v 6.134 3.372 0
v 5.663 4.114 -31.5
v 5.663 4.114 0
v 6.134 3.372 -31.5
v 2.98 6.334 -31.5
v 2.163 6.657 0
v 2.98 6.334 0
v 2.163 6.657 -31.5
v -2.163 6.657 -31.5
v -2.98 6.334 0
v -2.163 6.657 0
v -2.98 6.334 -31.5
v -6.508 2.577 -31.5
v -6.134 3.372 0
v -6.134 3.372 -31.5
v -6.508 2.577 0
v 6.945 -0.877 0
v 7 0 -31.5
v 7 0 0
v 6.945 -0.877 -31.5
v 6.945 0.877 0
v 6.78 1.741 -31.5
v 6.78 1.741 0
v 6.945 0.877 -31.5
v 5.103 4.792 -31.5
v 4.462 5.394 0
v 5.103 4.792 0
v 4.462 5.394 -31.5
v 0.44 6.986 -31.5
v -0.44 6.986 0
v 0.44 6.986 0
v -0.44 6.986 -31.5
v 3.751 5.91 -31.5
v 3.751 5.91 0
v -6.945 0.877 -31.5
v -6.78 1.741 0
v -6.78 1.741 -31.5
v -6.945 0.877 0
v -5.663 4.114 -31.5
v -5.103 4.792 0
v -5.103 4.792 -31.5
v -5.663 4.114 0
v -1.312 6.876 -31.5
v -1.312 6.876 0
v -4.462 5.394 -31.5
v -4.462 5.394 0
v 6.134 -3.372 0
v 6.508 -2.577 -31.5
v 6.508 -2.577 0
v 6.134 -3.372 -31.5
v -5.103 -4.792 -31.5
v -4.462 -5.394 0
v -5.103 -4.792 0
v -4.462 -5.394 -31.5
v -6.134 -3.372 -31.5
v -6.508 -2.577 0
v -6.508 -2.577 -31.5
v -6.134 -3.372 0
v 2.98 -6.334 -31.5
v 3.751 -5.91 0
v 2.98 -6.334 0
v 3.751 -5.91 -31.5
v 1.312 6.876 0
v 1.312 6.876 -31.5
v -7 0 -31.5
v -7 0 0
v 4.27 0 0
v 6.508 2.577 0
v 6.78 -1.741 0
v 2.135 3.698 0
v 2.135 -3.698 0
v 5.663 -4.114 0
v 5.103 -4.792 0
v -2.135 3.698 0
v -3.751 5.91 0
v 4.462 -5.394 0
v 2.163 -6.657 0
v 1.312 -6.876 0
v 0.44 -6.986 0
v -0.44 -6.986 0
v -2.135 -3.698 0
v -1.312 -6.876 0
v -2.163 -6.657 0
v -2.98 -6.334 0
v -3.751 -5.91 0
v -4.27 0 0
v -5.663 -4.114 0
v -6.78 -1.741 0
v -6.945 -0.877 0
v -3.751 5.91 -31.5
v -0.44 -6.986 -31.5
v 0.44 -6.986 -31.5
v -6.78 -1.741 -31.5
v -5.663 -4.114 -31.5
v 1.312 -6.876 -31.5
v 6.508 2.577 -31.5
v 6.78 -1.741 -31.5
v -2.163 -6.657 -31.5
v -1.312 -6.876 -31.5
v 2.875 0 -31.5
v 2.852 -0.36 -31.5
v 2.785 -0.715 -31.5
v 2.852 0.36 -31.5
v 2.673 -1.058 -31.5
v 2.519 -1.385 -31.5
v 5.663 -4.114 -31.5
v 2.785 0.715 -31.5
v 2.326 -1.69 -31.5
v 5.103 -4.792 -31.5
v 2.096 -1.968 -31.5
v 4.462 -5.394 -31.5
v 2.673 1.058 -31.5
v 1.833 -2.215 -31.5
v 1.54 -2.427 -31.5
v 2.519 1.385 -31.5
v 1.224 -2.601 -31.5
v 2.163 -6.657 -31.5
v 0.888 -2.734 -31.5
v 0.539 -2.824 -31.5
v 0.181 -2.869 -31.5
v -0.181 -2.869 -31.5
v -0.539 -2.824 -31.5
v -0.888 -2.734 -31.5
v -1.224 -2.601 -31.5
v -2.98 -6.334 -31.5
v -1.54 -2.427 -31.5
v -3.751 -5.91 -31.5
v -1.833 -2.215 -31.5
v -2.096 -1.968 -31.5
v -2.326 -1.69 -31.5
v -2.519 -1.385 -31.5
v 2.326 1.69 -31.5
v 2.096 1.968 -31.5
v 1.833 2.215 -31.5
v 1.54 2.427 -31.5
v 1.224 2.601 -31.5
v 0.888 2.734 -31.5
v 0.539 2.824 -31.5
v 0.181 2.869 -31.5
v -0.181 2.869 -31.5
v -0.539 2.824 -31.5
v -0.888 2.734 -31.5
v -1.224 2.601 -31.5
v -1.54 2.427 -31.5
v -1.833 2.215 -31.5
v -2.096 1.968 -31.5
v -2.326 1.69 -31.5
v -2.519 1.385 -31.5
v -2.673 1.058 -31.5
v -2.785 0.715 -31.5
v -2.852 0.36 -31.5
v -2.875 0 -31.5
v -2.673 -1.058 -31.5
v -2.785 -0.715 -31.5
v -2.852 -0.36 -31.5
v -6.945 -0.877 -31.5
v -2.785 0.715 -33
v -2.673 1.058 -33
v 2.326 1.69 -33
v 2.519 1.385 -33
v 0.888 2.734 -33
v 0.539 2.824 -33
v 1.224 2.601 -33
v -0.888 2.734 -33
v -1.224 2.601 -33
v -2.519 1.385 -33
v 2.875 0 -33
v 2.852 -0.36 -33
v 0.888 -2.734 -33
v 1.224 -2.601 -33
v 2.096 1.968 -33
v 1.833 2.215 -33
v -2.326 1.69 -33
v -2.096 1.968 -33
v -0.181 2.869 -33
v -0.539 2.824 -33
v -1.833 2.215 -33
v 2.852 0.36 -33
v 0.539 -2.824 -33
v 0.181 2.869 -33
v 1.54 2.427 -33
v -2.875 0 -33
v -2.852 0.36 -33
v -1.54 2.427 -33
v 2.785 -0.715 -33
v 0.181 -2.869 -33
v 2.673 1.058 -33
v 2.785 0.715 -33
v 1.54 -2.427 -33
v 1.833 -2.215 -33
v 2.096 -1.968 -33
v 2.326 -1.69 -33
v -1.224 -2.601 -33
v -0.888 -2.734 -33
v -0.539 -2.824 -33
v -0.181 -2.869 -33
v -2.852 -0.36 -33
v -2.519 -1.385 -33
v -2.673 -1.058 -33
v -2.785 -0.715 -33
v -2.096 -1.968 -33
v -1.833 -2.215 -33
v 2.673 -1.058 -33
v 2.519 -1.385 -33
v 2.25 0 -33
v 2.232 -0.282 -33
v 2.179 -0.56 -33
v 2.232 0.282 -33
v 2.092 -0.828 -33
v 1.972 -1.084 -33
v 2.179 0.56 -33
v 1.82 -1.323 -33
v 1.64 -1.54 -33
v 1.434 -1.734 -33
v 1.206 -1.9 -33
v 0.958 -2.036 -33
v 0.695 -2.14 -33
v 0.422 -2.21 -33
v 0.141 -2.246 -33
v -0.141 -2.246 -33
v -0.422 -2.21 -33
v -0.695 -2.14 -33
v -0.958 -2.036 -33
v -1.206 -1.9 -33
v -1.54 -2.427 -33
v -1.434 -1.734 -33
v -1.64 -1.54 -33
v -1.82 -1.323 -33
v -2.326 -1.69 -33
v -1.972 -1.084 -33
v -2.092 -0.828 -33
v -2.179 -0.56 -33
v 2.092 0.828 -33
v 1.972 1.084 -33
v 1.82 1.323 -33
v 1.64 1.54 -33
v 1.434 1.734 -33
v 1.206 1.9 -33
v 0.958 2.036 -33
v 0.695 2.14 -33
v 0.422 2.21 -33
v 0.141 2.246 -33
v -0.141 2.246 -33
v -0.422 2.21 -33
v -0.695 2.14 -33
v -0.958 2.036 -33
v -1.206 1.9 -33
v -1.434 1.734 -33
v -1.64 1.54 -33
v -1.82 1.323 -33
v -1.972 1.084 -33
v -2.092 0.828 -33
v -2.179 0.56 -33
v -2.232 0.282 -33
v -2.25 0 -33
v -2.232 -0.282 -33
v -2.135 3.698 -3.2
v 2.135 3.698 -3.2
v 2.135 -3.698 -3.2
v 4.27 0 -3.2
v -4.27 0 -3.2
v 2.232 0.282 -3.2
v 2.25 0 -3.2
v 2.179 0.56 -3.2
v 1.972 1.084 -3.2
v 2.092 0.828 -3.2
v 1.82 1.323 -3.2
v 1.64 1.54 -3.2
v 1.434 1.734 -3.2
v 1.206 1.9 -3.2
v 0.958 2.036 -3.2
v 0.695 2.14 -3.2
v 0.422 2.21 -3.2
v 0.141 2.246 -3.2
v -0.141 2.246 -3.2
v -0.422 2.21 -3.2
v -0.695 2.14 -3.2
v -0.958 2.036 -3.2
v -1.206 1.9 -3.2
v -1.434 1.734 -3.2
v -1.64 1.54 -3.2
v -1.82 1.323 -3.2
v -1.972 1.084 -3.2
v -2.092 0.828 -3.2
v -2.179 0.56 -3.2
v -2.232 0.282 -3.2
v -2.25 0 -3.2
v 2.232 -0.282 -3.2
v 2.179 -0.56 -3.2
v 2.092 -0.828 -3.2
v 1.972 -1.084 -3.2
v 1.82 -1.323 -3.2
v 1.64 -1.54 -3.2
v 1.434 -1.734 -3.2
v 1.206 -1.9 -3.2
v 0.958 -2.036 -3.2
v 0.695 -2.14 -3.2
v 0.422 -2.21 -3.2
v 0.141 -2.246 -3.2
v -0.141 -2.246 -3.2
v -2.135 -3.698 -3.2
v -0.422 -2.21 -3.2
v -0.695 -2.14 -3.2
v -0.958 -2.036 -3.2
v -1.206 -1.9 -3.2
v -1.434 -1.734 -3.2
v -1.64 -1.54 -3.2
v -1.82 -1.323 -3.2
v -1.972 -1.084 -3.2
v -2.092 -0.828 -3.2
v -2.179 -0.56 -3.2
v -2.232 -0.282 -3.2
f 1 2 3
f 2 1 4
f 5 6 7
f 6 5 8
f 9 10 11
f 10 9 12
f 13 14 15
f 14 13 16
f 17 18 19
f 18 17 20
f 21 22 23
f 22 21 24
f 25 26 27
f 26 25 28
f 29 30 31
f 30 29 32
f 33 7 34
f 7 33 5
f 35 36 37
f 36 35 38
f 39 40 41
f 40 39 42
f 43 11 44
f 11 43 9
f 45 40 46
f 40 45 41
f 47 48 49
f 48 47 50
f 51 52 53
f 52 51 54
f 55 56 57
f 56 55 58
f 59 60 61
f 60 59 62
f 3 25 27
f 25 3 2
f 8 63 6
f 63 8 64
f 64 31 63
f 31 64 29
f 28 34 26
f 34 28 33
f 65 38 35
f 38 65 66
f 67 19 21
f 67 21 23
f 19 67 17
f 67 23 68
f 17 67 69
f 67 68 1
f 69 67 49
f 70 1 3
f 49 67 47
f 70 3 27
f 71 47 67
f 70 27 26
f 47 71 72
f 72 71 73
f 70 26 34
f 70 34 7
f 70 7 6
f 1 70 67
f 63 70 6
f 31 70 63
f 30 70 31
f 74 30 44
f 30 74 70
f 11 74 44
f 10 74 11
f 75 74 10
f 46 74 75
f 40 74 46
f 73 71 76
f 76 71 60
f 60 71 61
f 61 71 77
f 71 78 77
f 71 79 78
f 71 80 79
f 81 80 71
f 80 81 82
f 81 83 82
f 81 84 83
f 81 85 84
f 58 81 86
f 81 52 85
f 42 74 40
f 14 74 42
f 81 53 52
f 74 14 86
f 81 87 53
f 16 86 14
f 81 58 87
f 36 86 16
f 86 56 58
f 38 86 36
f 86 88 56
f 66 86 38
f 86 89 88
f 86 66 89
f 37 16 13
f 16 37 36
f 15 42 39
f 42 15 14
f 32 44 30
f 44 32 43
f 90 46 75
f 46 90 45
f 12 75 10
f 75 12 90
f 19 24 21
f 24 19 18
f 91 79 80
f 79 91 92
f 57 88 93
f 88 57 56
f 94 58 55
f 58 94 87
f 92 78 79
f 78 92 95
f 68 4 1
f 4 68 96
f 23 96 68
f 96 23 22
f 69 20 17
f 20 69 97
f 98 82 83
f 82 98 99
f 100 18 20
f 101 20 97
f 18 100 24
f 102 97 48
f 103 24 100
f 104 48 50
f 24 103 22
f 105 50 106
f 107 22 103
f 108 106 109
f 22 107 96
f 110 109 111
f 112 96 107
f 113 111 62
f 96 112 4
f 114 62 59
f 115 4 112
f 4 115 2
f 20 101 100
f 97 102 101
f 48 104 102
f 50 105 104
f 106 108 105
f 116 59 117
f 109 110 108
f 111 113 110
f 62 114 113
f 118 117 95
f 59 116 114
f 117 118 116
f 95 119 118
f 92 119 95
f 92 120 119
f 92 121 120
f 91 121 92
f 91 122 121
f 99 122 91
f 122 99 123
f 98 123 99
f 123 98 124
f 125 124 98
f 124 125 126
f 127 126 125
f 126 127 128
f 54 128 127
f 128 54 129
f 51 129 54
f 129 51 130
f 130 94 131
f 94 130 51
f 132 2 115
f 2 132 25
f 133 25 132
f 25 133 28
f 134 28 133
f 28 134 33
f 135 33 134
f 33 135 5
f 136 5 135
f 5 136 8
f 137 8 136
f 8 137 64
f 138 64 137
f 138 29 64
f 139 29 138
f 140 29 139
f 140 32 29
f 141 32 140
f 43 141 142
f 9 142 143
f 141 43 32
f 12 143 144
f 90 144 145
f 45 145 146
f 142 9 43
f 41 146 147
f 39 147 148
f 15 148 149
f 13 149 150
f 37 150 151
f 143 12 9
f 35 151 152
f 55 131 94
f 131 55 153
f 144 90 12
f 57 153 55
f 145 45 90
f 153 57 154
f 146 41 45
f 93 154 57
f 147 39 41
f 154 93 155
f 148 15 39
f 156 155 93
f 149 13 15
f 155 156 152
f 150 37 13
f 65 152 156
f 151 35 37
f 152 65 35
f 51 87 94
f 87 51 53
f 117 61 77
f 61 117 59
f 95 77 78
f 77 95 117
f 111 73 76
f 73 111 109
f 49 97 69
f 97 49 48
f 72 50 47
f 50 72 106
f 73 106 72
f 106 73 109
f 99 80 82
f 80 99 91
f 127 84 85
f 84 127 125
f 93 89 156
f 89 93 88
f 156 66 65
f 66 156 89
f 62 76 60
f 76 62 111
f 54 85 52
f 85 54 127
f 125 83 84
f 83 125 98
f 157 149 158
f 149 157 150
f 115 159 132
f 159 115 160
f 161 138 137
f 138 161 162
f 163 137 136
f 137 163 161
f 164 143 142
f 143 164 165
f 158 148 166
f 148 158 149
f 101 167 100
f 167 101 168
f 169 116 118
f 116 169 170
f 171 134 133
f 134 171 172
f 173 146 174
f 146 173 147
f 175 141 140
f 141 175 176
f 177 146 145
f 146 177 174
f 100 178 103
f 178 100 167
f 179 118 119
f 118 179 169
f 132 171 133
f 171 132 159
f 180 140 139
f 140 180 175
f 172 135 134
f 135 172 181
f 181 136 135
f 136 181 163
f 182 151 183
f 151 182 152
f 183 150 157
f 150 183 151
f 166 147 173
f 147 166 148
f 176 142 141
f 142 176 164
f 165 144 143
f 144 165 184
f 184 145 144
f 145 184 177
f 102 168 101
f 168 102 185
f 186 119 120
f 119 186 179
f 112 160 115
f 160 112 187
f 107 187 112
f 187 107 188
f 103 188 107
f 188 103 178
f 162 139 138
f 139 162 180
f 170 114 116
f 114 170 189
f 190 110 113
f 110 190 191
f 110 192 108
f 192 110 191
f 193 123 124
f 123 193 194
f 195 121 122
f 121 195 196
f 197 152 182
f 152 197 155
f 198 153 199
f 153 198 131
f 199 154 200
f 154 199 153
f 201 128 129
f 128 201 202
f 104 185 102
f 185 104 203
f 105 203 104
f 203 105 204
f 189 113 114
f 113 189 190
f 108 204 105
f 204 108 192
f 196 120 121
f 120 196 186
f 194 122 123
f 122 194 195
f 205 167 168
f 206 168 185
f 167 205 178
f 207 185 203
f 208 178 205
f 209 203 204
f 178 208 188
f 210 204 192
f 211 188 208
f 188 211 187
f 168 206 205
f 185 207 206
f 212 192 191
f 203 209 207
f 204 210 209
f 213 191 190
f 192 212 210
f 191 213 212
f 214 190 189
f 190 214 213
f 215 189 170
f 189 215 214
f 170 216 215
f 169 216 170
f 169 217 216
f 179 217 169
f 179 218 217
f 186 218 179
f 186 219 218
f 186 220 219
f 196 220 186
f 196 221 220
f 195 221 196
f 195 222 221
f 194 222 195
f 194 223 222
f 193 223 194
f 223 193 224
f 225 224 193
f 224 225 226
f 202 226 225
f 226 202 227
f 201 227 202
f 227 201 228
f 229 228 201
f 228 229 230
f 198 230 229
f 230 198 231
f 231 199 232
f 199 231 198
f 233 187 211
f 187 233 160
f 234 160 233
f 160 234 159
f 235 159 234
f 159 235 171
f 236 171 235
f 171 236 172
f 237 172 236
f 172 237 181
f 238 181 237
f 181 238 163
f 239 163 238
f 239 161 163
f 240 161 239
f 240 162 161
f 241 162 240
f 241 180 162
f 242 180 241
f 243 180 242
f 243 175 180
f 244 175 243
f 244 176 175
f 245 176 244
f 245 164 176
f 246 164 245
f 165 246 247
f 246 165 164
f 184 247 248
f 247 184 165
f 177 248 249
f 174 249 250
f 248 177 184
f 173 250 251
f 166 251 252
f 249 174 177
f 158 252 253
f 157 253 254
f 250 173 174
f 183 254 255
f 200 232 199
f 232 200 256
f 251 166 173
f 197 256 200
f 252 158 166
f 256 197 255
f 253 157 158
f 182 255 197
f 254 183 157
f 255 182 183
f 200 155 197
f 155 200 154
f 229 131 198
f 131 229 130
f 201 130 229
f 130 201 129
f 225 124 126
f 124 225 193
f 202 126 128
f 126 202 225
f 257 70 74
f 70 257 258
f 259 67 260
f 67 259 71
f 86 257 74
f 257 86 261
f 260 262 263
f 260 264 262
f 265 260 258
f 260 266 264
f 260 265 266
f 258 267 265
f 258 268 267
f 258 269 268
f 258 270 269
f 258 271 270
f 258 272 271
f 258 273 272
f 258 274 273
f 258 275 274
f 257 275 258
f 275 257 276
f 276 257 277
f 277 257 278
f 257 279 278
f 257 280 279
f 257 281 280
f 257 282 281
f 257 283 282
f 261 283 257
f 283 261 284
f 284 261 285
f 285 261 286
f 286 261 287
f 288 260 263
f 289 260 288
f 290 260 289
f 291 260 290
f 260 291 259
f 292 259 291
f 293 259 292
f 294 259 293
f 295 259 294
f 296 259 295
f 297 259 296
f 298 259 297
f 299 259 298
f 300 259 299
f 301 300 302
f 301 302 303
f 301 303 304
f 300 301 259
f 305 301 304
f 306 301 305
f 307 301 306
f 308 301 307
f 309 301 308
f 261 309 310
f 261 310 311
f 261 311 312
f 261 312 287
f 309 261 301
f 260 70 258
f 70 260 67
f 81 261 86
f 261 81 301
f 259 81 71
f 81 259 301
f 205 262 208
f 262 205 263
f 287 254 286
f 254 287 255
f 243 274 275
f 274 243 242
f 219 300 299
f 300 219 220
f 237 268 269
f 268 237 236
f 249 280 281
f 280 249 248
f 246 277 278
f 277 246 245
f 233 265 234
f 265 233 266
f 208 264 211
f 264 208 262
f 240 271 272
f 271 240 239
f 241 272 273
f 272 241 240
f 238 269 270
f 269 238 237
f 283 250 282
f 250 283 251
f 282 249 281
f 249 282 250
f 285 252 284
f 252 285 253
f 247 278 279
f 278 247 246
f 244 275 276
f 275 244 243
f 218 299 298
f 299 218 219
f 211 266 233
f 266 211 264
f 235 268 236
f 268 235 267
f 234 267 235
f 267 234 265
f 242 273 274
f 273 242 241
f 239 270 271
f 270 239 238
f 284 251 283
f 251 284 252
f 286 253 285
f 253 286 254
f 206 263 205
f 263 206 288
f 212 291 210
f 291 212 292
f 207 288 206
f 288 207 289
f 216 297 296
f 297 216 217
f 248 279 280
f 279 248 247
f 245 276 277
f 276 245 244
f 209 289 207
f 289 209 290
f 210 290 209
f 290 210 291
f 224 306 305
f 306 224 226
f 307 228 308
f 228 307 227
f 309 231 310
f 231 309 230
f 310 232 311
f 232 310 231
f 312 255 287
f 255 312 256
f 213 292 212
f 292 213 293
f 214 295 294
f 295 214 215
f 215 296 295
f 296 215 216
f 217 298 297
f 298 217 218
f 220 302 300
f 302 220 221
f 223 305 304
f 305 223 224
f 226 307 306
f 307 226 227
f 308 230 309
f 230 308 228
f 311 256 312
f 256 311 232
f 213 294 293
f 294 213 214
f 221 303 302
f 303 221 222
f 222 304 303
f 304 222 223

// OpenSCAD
$fn = 50;


difference() {
	union() {
		translate(v = [0, 0, -31.5000000000]) {
			cylinder(h = 31.5000000000, r = 7.0000000000);
		}
		#translate(v = [0, 0, -33.0000000000]) {
			cylinder(h = 33, r = 2.8750000000);
		}
	}
	union() {
		translate(v = [0, 0, 0]) {
			rotate(a = [0, 0, 0]) {
				difference() {
					union() {
						translate(v = [0, 0, -3.2000000000]) {
							linear_extrude(height = 3.2000000000) {
								polygon(points = [[4.2698000000, 0.0000000000], [2.1349000000, 3.6977552691], [-2.1349000000, 3.6977552691], [-4.2698000000, 0.0000000000], [-2.1349000000, -3.6977552691], [2.1349000000, -3.6977552691]]);
							}
						}
					}
					union();
				}
			}
		}
		#translate(v = [0, 0, -100.0000000000]) {
			cylinder(h = 200, r = 2.2500000000);
		}
	}
}
